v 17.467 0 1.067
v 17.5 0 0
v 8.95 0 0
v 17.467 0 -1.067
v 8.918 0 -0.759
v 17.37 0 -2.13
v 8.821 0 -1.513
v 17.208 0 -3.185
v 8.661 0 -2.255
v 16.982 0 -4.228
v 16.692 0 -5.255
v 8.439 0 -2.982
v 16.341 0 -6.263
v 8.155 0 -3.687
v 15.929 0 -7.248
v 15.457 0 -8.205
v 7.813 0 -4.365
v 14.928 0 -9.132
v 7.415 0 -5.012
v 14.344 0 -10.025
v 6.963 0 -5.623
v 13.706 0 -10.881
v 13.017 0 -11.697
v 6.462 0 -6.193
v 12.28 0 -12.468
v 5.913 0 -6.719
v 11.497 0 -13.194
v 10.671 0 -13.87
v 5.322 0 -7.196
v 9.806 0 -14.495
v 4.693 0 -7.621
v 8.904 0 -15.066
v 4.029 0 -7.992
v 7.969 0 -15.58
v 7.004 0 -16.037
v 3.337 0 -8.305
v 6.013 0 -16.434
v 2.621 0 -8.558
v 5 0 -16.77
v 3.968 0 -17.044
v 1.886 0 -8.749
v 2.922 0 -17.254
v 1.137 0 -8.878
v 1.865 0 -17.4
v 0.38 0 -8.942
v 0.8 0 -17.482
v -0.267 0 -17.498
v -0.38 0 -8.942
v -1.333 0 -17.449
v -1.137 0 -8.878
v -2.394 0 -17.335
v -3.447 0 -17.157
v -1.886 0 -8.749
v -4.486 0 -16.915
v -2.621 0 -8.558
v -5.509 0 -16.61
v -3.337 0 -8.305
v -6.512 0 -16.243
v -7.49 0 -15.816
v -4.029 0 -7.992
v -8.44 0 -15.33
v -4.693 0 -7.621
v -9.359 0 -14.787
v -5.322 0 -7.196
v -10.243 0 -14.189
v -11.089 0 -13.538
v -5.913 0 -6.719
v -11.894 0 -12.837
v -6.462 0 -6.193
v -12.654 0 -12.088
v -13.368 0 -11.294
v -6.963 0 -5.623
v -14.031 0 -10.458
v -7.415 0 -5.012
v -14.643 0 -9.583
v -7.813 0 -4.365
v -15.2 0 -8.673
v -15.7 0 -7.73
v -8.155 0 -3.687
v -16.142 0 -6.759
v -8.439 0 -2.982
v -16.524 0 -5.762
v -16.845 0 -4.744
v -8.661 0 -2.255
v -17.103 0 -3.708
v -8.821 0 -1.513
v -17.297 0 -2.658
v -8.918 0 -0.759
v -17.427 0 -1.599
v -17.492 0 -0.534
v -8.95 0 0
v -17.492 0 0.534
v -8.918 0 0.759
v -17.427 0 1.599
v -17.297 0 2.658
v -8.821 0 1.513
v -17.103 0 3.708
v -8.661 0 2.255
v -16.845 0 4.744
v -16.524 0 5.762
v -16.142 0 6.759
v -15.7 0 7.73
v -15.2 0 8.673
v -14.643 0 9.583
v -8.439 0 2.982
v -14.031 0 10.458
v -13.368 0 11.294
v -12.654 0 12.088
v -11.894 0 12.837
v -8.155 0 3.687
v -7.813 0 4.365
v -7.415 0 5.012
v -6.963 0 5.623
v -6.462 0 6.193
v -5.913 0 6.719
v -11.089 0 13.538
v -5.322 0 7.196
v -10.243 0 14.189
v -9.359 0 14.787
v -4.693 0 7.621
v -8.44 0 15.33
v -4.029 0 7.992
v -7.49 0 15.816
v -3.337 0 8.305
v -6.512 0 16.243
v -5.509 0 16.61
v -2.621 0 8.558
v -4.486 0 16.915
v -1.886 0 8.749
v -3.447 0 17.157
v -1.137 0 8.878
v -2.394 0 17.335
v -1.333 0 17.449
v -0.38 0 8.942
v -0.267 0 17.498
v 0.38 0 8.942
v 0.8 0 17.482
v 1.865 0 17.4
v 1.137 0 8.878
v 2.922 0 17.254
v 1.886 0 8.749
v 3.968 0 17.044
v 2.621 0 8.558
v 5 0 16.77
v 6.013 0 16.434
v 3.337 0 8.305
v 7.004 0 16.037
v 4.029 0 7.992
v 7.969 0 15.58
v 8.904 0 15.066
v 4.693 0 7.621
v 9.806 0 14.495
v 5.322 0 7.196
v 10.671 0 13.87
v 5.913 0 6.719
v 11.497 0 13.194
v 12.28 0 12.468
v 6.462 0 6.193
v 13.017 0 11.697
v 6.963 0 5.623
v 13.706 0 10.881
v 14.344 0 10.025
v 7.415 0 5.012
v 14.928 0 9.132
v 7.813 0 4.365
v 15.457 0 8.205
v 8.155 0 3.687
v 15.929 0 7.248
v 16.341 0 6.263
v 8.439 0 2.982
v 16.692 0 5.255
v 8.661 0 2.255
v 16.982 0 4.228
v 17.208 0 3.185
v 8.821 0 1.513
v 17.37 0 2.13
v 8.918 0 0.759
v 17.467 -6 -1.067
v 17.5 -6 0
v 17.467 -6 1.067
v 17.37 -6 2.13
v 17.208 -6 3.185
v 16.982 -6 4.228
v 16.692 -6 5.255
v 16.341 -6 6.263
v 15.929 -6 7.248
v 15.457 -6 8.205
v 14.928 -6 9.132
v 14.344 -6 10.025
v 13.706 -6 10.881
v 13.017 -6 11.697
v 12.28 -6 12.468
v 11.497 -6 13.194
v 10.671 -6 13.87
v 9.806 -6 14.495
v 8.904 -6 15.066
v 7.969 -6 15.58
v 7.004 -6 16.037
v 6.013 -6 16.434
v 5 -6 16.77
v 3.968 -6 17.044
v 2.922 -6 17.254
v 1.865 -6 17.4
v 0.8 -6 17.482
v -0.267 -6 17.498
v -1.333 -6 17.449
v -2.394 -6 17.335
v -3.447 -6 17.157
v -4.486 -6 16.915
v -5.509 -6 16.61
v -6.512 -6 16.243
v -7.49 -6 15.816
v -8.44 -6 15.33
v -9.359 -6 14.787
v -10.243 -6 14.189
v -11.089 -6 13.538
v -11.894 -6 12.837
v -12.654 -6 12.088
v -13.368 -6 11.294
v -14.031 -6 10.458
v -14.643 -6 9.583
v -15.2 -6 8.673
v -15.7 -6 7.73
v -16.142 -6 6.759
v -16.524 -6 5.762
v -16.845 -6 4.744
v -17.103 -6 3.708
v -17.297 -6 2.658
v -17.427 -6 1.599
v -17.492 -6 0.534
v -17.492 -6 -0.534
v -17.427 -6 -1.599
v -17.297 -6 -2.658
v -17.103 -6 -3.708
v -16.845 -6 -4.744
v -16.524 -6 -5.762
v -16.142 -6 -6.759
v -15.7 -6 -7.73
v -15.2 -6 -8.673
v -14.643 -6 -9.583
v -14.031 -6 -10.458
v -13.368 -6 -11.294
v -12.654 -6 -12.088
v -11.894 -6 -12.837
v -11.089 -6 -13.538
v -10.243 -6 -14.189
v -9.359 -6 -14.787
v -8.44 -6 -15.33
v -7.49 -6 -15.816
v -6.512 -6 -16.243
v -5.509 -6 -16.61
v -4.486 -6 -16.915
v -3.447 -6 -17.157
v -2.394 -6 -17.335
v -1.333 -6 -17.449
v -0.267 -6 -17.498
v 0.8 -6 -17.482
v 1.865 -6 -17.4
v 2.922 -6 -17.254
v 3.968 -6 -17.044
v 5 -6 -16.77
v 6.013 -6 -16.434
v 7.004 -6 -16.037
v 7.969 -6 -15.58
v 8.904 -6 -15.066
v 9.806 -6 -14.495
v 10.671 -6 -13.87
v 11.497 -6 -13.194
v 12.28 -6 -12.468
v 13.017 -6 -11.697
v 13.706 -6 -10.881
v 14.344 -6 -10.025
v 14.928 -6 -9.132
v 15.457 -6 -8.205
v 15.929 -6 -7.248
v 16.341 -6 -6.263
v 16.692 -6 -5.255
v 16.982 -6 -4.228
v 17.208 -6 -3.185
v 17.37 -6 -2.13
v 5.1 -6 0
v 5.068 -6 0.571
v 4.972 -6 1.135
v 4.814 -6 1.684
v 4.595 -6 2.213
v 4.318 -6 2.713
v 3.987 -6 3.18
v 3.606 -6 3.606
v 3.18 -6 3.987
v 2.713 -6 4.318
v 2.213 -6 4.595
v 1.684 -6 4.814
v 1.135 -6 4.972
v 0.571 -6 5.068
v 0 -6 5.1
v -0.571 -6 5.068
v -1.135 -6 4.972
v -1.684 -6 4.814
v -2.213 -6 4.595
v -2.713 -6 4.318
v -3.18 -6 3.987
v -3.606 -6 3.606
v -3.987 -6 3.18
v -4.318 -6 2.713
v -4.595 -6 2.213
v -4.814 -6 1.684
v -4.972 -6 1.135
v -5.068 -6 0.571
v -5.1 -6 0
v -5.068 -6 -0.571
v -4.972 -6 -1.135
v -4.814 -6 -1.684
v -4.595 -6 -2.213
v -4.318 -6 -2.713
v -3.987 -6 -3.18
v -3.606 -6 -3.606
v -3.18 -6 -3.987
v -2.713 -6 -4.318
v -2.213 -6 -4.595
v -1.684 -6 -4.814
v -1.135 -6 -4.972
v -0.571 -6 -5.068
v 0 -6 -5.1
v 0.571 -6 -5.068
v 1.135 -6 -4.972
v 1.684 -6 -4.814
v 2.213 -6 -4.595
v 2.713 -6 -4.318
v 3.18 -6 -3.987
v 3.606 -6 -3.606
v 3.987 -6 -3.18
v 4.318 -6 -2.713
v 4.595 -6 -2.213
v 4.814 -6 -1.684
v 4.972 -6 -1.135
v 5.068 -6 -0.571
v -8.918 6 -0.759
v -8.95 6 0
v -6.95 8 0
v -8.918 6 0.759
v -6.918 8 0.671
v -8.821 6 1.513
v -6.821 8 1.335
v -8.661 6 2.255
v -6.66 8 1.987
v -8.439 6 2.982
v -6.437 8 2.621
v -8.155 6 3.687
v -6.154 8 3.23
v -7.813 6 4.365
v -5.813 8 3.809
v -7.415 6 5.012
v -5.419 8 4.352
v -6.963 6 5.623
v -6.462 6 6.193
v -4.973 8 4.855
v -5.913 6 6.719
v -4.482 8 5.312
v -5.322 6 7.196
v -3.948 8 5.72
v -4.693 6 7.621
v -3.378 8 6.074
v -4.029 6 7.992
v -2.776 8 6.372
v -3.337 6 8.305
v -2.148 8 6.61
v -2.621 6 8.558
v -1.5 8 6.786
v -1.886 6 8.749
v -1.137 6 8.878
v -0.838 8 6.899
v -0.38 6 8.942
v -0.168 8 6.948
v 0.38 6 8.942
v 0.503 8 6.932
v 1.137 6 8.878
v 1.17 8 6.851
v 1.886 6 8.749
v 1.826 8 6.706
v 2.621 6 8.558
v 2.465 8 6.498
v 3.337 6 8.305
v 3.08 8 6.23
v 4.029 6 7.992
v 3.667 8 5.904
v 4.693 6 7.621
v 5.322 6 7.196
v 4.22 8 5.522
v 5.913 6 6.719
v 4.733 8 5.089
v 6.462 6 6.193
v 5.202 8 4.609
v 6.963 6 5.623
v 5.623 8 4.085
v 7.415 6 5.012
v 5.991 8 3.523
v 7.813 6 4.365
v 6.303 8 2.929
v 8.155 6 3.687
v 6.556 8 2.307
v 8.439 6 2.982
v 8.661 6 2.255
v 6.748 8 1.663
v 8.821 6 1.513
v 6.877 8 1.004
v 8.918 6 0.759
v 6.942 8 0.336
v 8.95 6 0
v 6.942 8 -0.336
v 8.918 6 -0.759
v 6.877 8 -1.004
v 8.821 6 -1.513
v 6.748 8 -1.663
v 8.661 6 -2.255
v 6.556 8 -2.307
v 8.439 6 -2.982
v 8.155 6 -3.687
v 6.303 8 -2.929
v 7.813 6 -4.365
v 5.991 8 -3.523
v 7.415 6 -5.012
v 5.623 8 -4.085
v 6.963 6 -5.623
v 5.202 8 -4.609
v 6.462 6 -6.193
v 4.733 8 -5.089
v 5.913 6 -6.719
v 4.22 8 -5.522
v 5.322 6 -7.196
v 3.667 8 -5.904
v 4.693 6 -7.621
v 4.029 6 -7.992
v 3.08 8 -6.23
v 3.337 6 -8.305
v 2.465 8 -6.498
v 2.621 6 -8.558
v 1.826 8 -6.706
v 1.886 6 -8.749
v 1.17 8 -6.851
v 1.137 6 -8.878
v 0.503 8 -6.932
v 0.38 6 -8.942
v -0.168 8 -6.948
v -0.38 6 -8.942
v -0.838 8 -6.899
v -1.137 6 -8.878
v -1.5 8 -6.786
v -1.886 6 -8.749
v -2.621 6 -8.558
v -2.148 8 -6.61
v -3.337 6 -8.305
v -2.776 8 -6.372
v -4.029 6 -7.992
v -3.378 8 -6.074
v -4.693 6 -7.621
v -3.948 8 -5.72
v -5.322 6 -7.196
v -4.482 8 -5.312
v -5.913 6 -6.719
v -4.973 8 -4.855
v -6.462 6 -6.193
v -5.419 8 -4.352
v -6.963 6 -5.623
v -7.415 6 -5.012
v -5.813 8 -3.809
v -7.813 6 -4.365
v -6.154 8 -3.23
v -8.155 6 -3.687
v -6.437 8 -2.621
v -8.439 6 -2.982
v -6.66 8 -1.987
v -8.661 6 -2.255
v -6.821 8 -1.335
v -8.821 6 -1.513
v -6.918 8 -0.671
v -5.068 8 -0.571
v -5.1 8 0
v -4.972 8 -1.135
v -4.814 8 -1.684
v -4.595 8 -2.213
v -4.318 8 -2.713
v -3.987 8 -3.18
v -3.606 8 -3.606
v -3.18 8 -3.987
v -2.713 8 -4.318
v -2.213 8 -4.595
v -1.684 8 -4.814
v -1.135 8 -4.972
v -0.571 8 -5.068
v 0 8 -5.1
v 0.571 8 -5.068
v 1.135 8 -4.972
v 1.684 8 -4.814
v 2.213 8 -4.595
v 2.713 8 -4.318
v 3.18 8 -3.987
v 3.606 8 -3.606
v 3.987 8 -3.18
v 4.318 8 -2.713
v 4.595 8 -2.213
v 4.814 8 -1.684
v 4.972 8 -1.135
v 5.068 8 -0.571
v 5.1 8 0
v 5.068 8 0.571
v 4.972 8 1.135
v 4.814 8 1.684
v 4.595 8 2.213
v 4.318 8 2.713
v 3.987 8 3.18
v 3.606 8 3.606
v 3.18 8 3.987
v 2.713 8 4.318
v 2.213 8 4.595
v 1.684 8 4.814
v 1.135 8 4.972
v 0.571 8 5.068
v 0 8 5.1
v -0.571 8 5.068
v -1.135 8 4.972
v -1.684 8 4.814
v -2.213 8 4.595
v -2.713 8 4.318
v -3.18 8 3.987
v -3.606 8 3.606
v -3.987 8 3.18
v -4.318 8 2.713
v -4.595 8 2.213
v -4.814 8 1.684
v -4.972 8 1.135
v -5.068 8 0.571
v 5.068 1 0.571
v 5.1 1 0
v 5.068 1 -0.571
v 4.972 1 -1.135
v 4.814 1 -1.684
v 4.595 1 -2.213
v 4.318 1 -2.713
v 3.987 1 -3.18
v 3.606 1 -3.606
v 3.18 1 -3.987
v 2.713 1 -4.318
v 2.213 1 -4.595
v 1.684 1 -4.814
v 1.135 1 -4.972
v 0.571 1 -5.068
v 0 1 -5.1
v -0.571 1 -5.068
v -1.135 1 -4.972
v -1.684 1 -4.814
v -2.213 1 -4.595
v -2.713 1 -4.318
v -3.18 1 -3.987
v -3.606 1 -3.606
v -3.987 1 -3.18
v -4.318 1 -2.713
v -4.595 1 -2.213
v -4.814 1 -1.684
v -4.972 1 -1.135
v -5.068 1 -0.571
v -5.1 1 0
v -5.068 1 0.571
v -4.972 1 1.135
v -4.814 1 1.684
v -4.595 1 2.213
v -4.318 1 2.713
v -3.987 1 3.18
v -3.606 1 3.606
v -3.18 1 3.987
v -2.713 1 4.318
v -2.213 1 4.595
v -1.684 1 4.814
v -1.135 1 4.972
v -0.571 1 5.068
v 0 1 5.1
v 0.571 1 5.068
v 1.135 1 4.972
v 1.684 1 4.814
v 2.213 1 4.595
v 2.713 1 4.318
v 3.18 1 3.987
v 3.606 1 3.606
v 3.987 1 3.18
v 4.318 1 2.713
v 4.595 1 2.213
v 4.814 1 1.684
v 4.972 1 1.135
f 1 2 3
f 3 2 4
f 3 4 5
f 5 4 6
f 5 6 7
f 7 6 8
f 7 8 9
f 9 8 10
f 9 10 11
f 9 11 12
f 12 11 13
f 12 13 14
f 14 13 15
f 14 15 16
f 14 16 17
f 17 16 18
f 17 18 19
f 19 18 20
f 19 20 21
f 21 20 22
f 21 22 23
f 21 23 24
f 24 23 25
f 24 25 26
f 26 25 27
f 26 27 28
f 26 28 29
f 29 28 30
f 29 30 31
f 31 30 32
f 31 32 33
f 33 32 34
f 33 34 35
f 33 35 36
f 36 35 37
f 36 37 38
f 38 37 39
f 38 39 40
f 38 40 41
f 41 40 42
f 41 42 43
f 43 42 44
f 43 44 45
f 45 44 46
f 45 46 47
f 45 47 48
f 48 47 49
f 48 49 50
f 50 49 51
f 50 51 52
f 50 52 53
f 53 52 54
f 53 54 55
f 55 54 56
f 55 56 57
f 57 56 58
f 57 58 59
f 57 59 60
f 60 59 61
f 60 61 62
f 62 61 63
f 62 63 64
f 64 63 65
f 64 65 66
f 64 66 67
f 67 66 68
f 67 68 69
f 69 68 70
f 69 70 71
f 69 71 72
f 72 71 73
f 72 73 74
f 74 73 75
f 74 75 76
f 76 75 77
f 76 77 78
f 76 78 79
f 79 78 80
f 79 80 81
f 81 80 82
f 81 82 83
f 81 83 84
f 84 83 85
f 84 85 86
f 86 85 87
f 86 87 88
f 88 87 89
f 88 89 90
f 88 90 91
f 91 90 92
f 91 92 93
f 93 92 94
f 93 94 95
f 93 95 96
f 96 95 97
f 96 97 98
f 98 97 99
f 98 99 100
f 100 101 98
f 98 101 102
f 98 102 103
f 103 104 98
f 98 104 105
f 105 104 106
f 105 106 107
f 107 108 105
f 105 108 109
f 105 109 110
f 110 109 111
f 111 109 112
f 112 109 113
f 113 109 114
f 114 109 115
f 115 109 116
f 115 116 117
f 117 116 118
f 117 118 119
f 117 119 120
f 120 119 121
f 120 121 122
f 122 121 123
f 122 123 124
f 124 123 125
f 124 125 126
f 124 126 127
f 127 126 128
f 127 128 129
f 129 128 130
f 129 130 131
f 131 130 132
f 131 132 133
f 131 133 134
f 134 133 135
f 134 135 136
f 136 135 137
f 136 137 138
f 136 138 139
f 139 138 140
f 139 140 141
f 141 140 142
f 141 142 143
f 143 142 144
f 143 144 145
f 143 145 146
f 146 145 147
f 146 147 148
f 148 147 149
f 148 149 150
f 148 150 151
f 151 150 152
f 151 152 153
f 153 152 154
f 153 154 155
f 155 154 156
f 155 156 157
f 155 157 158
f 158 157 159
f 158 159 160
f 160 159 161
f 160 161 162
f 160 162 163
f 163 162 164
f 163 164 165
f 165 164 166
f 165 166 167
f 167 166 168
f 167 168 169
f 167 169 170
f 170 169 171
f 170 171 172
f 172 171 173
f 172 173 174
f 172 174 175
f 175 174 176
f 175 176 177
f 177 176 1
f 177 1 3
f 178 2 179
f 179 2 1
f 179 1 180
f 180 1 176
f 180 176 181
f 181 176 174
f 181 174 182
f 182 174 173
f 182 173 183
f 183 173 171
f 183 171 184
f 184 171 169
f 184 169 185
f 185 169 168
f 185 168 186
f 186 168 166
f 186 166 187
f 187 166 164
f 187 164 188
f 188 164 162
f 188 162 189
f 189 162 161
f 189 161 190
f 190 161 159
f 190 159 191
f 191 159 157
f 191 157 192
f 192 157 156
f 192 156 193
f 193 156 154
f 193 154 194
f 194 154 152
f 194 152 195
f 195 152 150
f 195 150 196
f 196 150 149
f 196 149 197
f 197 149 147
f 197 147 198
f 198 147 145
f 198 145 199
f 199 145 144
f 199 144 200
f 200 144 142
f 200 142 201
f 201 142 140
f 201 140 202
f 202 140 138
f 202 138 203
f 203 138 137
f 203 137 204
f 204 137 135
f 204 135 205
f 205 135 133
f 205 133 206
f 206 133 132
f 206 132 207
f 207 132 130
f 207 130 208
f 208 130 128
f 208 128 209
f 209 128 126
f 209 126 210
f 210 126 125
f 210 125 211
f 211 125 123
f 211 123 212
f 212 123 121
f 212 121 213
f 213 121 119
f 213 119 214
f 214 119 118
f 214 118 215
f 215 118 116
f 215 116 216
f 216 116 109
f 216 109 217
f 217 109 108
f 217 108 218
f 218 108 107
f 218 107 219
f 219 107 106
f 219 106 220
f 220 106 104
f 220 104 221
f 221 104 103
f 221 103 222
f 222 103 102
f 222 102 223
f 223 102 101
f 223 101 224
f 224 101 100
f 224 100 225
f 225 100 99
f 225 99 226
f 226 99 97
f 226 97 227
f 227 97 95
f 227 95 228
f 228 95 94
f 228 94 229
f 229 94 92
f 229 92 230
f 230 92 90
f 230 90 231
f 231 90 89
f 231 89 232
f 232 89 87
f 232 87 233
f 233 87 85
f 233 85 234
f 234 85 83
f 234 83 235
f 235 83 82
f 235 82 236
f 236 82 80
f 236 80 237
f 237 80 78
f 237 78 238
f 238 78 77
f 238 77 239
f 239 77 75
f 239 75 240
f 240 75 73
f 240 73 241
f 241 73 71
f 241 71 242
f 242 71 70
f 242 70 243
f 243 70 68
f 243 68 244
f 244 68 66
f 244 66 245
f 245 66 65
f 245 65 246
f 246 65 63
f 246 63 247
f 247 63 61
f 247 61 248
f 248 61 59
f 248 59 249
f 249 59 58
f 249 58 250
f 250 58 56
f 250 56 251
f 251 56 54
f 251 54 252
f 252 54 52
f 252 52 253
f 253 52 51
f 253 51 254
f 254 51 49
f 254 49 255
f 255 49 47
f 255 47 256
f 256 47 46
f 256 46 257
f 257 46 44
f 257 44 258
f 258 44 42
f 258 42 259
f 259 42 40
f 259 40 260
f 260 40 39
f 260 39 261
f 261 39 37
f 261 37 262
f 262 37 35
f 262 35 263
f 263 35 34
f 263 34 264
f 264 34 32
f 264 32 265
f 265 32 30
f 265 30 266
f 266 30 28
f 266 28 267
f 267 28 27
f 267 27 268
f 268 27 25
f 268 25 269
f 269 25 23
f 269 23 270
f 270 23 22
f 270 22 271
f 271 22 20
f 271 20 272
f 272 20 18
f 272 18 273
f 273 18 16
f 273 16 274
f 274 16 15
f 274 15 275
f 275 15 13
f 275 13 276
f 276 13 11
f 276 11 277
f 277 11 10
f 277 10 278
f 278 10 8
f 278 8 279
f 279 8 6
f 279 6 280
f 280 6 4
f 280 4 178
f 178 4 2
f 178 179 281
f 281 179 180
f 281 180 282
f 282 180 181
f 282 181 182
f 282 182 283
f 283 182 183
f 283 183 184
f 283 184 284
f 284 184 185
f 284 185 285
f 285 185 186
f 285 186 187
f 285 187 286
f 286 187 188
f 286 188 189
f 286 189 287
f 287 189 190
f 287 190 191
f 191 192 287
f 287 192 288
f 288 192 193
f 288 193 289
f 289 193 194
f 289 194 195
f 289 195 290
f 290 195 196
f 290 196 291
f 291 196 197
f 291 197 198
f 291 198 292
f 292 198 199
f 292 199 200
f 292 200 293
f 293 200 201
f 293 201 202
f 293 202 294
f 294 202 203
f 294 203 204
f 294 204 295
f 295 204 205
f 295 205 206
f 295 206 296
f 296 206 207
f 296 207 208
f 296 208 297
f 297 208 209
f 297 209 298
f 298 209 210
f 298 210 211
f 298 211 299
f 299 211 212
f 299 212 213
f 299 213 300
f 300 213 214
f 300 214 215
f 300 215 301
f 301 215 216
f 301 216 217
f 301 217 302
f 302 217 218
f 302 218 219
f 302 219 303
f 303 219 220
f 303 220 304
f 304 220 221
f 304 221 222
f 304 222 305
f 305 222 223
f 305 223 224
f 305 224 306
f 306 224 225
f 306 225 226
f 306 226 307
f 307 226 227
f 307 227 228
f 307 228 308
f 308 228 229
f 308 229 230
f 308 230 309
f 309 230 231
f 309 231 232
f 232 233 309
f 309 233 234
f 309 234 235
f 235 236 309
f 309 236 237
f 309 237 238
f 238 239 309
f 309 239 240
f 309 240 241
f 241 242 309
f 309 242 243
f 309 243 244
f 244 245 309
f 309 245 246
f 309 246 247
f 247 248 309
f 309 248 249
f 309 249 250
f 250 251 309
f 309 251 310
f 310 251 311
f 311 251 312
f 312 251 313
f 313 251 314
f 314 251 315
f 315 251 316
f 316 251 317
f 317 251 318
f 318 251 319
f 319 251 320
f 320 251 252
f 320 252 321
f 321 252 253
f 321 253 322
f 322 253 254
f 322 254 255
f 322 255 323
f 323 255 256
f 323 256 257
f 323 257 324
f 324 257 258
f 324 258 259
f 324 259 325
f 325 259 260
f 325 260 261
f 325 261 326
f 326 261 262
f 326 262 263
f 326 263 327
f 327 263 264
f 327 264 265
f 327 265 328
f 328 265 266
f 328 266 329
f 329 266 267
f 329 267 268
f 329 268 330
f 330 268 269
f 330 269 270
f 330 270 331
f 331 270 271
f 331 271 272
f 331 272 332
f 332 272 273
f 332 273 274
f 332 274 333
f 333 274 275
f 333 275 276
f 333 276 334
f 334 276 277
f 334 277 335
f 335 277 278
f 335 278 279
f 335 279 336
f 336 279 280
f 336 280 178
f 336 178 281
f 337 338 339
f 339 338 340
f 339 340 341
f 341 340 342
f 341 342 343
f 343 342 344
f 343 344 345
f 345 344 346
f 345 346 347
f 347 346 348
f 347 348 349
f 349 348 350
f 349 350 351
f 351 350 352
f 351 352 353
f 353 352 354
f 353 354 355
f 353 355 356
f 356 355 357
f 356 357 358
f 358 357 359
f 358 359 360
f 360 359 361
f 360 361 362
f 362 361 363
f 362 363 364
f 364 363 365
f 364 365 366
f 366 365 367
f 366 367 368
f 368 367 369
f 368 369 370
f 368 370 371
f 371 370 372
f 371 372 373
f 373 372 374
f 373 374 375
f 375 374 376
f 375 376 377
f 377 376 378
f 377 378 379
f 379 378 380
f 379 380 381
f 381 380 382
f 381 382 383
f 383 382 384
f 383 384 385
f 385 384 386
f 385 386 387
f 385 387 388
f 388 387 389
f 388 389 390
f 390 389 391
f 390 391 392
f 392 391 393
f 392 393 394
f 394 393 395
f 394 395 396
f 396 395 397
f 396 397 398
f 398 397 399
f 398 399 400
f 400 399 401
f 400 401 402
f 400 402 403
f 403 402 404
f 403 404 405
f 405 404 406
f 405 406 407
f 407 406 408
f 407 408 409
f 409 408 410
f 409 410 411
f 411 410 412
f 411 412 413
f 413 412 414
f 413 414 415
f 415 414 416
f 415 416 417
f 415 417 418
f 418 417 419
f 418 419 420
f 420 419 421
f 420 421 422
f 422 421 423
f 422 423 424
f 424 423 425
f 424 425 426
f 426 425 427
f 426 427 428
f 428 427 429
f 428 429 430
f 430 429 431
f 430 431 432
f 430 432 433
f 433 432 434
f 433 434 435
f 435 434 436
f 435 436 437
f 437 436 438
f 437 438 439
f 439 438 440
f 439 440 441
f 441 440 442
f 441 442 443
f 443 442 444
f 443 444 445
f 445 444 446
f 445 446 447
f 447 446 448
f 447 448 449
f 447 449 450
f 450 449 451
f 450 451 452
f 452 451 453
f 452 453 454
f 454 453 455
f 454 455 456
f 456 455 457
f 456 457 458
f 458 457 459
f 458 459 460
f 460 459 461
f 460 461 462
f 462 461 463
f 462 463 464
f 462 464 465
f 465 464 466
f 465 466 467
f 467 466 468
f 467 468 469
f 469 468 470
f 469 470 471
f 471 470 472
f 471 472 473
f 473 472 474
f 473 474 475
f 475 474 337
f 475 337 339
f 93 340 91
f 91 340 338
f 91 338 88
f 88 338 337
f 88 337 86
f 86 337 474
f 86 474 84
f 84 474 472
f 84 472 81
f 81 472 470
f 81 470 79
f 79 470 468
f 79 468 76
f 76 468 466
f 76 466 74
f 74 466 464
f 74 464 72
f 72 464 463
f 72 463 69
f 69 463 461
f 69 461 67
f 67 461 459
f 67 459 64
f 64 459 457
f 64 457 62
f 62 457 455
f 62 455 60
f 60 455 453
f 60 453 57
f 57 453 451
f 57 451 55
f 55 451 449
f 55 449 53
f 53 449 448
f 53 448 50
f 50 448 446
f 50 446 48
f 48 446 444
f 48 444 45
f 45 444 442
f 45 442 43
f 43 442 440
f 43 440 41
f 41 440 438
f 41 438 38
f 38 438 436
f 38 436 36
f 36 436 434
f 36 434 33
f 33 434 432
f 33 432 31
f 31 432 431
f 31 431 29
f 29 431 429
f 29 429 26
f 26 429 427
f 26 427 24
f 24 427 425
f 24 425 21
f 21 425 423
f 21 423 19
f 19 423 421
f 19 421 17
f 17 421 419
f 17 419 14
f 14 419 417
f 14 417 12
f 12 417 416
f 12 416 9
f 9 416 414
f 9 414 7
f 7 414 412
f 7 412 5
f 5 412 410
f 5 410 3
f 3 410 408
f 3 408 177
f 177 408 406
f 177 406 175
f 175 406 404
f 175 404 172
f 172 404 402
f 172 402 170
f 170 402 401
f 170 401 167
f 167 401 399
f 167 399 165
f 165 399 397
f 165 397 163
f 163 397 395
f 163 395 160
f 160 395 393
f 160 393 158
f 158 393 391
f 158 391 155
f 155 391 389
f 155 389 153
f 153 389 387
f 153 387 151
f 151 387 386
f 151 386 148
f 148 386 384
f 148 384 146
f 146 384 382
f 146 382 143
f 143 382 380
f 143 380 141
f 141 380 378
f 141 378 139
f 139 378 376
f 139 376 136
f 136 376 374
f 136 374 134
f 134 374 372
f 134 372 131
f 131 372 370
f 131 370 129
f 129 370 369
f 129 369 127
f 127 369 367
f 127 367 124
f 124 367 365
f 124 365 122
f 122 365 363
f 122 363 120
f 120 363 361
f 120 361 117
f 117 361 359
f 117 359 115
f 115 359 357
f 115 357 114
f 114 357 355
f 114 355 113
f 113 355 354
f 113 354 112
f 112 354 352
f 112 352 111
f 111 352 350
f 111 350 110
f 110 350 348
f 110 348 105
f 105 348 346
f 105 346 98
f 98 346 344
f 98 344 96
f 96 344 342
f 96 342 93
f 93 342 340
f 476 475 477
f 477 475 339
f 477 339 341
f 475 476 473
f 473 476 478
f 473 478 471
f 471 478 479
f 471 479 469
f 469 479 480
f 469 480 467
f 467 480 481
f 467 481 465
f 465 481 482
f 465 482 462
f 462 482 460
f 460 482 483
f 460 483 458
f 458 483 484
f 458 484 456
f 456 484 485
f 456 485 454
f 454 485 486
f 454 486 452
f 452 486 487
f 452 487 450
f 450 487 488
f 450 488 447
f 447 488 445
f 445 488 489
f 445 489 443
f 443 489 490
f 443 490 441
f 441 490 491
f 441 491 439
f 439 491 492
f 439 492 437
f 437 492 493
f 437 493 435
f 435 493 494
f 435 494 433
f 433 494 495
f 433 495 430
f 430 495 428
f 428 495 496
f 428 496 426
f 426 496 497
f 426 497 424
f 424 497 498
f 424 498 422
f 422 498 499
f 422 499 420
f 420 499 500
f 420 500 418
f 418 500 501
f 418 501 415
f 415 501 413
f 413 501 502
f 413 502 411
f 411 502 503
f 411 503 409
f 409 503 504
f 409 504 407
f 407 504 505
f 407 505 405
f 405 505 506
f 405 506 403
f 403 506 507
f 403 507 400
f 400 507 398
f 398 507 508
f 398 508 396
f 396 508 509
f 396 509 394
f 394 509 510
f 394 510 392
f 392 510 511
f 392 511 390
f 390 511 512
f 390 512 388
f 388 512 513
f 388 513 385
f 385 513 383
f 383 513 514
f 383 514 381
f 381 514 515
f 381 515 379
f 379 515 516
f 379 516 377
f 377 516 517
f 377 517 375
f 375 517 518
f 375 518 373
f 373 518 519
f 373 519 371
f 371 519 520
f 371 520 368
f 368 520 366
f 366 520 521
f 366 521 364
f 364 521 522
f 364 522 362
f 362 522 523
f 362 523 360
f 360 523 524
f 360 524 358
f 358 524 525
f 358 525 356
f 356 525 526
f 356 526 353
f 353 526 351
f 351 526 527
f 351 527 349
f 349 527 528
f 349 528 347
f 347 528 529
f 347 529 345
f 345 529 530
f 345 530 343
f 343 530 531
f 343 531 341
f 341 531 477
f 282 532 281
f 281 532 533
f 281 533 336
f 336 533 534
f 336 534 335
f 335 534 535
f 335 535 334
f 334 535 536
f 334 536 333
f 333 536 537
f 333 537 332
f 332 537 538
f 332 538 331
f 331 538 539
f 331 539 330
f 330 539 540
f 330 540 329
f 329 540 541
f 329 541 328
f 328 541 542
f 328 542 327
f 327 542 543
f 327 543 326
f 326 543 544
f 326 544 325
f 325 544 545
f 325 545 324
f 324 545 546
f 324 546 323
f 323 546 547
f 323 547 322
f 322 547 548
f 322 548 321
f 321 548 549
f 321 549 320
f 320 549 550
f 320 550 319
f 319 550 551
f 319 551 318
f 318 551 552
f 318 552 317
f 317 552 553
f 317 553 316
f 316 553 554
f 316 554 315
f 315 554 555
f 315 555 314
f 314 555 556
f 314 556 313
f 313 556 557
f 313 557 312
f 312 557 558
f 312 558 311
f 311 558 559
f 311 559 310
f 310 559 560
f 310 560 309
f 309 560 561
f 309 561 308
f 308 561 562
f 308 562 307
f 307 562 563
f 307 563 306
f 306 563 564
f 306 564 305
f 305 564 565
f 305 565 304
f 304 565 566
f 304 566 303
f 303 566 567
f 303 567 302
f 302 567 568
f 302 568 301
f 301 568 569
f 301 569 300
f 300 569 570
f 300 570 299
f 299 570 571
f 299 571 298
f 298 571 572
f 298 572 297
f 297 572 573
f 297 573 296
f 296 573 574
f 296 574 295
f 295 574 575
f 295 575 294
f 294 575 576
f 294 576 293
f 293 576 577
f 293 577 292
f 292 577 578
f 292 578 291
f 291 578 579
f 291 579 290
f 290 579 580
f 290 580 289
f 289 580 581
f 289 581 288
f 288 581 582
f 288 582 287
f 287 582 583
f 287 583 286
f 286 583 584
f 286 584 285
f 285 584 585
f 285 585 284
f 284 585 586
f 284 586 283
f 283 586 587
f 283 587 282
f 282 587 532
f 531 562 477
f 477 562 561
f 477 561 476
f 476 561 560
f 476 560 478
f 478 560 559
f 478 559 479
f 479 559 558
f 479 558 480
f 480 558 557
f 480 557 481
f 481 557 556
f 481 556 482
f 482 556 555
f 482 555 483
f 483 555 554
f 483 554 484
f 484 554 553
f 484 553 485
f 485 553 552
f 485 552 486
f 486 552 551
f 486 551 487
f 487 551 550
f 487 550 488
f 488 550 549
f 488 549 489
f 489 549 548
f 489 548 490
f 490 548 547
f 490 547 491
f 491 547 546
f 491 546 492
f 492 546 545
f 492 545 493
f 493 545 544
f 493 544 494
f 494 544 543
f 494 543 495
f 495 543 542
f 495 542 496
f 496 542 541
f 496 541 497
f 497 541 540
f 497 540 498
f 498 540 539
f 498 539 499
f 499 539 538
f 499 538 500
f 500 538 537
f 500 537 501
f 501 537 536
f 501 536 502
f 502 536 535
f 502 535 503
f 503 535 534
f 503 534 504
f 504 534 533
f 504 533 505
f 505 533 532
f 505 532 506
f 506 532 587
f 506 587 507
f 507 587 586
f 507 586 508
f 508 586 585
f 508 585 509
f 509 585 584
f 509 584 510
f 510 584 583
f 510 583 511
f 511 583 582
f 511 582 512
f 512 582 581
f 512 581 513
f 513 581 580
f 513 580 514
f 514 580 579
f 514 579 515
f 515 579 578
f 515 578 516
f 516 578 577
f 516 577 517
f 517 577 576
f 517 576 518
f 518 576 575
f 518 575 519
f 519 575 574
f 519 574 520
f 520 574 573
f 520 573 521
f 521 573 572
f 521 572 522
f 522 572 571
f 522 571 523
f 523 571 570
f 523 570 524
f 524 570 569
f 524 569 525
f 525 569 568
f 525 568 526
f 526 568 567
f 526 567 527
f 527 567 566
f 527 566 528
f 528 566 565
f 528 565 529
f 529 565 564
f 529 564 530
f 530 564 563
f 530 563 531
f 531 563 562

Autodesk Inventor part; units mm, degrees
ref_plane "YZ Plane" through (0, 0, 0) normal (1, 0, 0) x (0, 1, 0)
ref_plane "XZ Plane" through (0, 0, 0) normal (0, 1, 0) x (-1, 0, 0)
ref_plane "XY Plane" through (0, 0, 0) normal (0, 0, 1) x (1, 0, 0)
sketch "Sketch1" plane through (0, 0, 0) normal (0, 1, 0) x (-1, 0, 0)
  circle A0 centre (0, 0) radius 5.1
  circle A1 centre (0, 0) radius 8.95
  dimension "d0" = 10.2
  dimension "d1" = 17.9
extrude "Extrusion1" add sketch "Sketch1" along normal blind 8
chamfer "Chamfer1" distance 2 angle 45 1 edges at (8.95, 8, 0)
sketch "Sketch2" plane through (0, 0, 0) normal (0, -1, 0) x (1, 0, 0)
  circle A0 centre (0, 0) radius 8.95 projected
  circle A1 centre (0, 0) radius 5.1 projected
  circle A2 centre (0, 0) radius 17.5
  dimension "d7" = 35
extrude "Extrusion2" add sketch "Sketch2" along normal blind 6 contours A0 | A2
properties part number "Indre_bøsning_Stempel_stang_3DPrint"
